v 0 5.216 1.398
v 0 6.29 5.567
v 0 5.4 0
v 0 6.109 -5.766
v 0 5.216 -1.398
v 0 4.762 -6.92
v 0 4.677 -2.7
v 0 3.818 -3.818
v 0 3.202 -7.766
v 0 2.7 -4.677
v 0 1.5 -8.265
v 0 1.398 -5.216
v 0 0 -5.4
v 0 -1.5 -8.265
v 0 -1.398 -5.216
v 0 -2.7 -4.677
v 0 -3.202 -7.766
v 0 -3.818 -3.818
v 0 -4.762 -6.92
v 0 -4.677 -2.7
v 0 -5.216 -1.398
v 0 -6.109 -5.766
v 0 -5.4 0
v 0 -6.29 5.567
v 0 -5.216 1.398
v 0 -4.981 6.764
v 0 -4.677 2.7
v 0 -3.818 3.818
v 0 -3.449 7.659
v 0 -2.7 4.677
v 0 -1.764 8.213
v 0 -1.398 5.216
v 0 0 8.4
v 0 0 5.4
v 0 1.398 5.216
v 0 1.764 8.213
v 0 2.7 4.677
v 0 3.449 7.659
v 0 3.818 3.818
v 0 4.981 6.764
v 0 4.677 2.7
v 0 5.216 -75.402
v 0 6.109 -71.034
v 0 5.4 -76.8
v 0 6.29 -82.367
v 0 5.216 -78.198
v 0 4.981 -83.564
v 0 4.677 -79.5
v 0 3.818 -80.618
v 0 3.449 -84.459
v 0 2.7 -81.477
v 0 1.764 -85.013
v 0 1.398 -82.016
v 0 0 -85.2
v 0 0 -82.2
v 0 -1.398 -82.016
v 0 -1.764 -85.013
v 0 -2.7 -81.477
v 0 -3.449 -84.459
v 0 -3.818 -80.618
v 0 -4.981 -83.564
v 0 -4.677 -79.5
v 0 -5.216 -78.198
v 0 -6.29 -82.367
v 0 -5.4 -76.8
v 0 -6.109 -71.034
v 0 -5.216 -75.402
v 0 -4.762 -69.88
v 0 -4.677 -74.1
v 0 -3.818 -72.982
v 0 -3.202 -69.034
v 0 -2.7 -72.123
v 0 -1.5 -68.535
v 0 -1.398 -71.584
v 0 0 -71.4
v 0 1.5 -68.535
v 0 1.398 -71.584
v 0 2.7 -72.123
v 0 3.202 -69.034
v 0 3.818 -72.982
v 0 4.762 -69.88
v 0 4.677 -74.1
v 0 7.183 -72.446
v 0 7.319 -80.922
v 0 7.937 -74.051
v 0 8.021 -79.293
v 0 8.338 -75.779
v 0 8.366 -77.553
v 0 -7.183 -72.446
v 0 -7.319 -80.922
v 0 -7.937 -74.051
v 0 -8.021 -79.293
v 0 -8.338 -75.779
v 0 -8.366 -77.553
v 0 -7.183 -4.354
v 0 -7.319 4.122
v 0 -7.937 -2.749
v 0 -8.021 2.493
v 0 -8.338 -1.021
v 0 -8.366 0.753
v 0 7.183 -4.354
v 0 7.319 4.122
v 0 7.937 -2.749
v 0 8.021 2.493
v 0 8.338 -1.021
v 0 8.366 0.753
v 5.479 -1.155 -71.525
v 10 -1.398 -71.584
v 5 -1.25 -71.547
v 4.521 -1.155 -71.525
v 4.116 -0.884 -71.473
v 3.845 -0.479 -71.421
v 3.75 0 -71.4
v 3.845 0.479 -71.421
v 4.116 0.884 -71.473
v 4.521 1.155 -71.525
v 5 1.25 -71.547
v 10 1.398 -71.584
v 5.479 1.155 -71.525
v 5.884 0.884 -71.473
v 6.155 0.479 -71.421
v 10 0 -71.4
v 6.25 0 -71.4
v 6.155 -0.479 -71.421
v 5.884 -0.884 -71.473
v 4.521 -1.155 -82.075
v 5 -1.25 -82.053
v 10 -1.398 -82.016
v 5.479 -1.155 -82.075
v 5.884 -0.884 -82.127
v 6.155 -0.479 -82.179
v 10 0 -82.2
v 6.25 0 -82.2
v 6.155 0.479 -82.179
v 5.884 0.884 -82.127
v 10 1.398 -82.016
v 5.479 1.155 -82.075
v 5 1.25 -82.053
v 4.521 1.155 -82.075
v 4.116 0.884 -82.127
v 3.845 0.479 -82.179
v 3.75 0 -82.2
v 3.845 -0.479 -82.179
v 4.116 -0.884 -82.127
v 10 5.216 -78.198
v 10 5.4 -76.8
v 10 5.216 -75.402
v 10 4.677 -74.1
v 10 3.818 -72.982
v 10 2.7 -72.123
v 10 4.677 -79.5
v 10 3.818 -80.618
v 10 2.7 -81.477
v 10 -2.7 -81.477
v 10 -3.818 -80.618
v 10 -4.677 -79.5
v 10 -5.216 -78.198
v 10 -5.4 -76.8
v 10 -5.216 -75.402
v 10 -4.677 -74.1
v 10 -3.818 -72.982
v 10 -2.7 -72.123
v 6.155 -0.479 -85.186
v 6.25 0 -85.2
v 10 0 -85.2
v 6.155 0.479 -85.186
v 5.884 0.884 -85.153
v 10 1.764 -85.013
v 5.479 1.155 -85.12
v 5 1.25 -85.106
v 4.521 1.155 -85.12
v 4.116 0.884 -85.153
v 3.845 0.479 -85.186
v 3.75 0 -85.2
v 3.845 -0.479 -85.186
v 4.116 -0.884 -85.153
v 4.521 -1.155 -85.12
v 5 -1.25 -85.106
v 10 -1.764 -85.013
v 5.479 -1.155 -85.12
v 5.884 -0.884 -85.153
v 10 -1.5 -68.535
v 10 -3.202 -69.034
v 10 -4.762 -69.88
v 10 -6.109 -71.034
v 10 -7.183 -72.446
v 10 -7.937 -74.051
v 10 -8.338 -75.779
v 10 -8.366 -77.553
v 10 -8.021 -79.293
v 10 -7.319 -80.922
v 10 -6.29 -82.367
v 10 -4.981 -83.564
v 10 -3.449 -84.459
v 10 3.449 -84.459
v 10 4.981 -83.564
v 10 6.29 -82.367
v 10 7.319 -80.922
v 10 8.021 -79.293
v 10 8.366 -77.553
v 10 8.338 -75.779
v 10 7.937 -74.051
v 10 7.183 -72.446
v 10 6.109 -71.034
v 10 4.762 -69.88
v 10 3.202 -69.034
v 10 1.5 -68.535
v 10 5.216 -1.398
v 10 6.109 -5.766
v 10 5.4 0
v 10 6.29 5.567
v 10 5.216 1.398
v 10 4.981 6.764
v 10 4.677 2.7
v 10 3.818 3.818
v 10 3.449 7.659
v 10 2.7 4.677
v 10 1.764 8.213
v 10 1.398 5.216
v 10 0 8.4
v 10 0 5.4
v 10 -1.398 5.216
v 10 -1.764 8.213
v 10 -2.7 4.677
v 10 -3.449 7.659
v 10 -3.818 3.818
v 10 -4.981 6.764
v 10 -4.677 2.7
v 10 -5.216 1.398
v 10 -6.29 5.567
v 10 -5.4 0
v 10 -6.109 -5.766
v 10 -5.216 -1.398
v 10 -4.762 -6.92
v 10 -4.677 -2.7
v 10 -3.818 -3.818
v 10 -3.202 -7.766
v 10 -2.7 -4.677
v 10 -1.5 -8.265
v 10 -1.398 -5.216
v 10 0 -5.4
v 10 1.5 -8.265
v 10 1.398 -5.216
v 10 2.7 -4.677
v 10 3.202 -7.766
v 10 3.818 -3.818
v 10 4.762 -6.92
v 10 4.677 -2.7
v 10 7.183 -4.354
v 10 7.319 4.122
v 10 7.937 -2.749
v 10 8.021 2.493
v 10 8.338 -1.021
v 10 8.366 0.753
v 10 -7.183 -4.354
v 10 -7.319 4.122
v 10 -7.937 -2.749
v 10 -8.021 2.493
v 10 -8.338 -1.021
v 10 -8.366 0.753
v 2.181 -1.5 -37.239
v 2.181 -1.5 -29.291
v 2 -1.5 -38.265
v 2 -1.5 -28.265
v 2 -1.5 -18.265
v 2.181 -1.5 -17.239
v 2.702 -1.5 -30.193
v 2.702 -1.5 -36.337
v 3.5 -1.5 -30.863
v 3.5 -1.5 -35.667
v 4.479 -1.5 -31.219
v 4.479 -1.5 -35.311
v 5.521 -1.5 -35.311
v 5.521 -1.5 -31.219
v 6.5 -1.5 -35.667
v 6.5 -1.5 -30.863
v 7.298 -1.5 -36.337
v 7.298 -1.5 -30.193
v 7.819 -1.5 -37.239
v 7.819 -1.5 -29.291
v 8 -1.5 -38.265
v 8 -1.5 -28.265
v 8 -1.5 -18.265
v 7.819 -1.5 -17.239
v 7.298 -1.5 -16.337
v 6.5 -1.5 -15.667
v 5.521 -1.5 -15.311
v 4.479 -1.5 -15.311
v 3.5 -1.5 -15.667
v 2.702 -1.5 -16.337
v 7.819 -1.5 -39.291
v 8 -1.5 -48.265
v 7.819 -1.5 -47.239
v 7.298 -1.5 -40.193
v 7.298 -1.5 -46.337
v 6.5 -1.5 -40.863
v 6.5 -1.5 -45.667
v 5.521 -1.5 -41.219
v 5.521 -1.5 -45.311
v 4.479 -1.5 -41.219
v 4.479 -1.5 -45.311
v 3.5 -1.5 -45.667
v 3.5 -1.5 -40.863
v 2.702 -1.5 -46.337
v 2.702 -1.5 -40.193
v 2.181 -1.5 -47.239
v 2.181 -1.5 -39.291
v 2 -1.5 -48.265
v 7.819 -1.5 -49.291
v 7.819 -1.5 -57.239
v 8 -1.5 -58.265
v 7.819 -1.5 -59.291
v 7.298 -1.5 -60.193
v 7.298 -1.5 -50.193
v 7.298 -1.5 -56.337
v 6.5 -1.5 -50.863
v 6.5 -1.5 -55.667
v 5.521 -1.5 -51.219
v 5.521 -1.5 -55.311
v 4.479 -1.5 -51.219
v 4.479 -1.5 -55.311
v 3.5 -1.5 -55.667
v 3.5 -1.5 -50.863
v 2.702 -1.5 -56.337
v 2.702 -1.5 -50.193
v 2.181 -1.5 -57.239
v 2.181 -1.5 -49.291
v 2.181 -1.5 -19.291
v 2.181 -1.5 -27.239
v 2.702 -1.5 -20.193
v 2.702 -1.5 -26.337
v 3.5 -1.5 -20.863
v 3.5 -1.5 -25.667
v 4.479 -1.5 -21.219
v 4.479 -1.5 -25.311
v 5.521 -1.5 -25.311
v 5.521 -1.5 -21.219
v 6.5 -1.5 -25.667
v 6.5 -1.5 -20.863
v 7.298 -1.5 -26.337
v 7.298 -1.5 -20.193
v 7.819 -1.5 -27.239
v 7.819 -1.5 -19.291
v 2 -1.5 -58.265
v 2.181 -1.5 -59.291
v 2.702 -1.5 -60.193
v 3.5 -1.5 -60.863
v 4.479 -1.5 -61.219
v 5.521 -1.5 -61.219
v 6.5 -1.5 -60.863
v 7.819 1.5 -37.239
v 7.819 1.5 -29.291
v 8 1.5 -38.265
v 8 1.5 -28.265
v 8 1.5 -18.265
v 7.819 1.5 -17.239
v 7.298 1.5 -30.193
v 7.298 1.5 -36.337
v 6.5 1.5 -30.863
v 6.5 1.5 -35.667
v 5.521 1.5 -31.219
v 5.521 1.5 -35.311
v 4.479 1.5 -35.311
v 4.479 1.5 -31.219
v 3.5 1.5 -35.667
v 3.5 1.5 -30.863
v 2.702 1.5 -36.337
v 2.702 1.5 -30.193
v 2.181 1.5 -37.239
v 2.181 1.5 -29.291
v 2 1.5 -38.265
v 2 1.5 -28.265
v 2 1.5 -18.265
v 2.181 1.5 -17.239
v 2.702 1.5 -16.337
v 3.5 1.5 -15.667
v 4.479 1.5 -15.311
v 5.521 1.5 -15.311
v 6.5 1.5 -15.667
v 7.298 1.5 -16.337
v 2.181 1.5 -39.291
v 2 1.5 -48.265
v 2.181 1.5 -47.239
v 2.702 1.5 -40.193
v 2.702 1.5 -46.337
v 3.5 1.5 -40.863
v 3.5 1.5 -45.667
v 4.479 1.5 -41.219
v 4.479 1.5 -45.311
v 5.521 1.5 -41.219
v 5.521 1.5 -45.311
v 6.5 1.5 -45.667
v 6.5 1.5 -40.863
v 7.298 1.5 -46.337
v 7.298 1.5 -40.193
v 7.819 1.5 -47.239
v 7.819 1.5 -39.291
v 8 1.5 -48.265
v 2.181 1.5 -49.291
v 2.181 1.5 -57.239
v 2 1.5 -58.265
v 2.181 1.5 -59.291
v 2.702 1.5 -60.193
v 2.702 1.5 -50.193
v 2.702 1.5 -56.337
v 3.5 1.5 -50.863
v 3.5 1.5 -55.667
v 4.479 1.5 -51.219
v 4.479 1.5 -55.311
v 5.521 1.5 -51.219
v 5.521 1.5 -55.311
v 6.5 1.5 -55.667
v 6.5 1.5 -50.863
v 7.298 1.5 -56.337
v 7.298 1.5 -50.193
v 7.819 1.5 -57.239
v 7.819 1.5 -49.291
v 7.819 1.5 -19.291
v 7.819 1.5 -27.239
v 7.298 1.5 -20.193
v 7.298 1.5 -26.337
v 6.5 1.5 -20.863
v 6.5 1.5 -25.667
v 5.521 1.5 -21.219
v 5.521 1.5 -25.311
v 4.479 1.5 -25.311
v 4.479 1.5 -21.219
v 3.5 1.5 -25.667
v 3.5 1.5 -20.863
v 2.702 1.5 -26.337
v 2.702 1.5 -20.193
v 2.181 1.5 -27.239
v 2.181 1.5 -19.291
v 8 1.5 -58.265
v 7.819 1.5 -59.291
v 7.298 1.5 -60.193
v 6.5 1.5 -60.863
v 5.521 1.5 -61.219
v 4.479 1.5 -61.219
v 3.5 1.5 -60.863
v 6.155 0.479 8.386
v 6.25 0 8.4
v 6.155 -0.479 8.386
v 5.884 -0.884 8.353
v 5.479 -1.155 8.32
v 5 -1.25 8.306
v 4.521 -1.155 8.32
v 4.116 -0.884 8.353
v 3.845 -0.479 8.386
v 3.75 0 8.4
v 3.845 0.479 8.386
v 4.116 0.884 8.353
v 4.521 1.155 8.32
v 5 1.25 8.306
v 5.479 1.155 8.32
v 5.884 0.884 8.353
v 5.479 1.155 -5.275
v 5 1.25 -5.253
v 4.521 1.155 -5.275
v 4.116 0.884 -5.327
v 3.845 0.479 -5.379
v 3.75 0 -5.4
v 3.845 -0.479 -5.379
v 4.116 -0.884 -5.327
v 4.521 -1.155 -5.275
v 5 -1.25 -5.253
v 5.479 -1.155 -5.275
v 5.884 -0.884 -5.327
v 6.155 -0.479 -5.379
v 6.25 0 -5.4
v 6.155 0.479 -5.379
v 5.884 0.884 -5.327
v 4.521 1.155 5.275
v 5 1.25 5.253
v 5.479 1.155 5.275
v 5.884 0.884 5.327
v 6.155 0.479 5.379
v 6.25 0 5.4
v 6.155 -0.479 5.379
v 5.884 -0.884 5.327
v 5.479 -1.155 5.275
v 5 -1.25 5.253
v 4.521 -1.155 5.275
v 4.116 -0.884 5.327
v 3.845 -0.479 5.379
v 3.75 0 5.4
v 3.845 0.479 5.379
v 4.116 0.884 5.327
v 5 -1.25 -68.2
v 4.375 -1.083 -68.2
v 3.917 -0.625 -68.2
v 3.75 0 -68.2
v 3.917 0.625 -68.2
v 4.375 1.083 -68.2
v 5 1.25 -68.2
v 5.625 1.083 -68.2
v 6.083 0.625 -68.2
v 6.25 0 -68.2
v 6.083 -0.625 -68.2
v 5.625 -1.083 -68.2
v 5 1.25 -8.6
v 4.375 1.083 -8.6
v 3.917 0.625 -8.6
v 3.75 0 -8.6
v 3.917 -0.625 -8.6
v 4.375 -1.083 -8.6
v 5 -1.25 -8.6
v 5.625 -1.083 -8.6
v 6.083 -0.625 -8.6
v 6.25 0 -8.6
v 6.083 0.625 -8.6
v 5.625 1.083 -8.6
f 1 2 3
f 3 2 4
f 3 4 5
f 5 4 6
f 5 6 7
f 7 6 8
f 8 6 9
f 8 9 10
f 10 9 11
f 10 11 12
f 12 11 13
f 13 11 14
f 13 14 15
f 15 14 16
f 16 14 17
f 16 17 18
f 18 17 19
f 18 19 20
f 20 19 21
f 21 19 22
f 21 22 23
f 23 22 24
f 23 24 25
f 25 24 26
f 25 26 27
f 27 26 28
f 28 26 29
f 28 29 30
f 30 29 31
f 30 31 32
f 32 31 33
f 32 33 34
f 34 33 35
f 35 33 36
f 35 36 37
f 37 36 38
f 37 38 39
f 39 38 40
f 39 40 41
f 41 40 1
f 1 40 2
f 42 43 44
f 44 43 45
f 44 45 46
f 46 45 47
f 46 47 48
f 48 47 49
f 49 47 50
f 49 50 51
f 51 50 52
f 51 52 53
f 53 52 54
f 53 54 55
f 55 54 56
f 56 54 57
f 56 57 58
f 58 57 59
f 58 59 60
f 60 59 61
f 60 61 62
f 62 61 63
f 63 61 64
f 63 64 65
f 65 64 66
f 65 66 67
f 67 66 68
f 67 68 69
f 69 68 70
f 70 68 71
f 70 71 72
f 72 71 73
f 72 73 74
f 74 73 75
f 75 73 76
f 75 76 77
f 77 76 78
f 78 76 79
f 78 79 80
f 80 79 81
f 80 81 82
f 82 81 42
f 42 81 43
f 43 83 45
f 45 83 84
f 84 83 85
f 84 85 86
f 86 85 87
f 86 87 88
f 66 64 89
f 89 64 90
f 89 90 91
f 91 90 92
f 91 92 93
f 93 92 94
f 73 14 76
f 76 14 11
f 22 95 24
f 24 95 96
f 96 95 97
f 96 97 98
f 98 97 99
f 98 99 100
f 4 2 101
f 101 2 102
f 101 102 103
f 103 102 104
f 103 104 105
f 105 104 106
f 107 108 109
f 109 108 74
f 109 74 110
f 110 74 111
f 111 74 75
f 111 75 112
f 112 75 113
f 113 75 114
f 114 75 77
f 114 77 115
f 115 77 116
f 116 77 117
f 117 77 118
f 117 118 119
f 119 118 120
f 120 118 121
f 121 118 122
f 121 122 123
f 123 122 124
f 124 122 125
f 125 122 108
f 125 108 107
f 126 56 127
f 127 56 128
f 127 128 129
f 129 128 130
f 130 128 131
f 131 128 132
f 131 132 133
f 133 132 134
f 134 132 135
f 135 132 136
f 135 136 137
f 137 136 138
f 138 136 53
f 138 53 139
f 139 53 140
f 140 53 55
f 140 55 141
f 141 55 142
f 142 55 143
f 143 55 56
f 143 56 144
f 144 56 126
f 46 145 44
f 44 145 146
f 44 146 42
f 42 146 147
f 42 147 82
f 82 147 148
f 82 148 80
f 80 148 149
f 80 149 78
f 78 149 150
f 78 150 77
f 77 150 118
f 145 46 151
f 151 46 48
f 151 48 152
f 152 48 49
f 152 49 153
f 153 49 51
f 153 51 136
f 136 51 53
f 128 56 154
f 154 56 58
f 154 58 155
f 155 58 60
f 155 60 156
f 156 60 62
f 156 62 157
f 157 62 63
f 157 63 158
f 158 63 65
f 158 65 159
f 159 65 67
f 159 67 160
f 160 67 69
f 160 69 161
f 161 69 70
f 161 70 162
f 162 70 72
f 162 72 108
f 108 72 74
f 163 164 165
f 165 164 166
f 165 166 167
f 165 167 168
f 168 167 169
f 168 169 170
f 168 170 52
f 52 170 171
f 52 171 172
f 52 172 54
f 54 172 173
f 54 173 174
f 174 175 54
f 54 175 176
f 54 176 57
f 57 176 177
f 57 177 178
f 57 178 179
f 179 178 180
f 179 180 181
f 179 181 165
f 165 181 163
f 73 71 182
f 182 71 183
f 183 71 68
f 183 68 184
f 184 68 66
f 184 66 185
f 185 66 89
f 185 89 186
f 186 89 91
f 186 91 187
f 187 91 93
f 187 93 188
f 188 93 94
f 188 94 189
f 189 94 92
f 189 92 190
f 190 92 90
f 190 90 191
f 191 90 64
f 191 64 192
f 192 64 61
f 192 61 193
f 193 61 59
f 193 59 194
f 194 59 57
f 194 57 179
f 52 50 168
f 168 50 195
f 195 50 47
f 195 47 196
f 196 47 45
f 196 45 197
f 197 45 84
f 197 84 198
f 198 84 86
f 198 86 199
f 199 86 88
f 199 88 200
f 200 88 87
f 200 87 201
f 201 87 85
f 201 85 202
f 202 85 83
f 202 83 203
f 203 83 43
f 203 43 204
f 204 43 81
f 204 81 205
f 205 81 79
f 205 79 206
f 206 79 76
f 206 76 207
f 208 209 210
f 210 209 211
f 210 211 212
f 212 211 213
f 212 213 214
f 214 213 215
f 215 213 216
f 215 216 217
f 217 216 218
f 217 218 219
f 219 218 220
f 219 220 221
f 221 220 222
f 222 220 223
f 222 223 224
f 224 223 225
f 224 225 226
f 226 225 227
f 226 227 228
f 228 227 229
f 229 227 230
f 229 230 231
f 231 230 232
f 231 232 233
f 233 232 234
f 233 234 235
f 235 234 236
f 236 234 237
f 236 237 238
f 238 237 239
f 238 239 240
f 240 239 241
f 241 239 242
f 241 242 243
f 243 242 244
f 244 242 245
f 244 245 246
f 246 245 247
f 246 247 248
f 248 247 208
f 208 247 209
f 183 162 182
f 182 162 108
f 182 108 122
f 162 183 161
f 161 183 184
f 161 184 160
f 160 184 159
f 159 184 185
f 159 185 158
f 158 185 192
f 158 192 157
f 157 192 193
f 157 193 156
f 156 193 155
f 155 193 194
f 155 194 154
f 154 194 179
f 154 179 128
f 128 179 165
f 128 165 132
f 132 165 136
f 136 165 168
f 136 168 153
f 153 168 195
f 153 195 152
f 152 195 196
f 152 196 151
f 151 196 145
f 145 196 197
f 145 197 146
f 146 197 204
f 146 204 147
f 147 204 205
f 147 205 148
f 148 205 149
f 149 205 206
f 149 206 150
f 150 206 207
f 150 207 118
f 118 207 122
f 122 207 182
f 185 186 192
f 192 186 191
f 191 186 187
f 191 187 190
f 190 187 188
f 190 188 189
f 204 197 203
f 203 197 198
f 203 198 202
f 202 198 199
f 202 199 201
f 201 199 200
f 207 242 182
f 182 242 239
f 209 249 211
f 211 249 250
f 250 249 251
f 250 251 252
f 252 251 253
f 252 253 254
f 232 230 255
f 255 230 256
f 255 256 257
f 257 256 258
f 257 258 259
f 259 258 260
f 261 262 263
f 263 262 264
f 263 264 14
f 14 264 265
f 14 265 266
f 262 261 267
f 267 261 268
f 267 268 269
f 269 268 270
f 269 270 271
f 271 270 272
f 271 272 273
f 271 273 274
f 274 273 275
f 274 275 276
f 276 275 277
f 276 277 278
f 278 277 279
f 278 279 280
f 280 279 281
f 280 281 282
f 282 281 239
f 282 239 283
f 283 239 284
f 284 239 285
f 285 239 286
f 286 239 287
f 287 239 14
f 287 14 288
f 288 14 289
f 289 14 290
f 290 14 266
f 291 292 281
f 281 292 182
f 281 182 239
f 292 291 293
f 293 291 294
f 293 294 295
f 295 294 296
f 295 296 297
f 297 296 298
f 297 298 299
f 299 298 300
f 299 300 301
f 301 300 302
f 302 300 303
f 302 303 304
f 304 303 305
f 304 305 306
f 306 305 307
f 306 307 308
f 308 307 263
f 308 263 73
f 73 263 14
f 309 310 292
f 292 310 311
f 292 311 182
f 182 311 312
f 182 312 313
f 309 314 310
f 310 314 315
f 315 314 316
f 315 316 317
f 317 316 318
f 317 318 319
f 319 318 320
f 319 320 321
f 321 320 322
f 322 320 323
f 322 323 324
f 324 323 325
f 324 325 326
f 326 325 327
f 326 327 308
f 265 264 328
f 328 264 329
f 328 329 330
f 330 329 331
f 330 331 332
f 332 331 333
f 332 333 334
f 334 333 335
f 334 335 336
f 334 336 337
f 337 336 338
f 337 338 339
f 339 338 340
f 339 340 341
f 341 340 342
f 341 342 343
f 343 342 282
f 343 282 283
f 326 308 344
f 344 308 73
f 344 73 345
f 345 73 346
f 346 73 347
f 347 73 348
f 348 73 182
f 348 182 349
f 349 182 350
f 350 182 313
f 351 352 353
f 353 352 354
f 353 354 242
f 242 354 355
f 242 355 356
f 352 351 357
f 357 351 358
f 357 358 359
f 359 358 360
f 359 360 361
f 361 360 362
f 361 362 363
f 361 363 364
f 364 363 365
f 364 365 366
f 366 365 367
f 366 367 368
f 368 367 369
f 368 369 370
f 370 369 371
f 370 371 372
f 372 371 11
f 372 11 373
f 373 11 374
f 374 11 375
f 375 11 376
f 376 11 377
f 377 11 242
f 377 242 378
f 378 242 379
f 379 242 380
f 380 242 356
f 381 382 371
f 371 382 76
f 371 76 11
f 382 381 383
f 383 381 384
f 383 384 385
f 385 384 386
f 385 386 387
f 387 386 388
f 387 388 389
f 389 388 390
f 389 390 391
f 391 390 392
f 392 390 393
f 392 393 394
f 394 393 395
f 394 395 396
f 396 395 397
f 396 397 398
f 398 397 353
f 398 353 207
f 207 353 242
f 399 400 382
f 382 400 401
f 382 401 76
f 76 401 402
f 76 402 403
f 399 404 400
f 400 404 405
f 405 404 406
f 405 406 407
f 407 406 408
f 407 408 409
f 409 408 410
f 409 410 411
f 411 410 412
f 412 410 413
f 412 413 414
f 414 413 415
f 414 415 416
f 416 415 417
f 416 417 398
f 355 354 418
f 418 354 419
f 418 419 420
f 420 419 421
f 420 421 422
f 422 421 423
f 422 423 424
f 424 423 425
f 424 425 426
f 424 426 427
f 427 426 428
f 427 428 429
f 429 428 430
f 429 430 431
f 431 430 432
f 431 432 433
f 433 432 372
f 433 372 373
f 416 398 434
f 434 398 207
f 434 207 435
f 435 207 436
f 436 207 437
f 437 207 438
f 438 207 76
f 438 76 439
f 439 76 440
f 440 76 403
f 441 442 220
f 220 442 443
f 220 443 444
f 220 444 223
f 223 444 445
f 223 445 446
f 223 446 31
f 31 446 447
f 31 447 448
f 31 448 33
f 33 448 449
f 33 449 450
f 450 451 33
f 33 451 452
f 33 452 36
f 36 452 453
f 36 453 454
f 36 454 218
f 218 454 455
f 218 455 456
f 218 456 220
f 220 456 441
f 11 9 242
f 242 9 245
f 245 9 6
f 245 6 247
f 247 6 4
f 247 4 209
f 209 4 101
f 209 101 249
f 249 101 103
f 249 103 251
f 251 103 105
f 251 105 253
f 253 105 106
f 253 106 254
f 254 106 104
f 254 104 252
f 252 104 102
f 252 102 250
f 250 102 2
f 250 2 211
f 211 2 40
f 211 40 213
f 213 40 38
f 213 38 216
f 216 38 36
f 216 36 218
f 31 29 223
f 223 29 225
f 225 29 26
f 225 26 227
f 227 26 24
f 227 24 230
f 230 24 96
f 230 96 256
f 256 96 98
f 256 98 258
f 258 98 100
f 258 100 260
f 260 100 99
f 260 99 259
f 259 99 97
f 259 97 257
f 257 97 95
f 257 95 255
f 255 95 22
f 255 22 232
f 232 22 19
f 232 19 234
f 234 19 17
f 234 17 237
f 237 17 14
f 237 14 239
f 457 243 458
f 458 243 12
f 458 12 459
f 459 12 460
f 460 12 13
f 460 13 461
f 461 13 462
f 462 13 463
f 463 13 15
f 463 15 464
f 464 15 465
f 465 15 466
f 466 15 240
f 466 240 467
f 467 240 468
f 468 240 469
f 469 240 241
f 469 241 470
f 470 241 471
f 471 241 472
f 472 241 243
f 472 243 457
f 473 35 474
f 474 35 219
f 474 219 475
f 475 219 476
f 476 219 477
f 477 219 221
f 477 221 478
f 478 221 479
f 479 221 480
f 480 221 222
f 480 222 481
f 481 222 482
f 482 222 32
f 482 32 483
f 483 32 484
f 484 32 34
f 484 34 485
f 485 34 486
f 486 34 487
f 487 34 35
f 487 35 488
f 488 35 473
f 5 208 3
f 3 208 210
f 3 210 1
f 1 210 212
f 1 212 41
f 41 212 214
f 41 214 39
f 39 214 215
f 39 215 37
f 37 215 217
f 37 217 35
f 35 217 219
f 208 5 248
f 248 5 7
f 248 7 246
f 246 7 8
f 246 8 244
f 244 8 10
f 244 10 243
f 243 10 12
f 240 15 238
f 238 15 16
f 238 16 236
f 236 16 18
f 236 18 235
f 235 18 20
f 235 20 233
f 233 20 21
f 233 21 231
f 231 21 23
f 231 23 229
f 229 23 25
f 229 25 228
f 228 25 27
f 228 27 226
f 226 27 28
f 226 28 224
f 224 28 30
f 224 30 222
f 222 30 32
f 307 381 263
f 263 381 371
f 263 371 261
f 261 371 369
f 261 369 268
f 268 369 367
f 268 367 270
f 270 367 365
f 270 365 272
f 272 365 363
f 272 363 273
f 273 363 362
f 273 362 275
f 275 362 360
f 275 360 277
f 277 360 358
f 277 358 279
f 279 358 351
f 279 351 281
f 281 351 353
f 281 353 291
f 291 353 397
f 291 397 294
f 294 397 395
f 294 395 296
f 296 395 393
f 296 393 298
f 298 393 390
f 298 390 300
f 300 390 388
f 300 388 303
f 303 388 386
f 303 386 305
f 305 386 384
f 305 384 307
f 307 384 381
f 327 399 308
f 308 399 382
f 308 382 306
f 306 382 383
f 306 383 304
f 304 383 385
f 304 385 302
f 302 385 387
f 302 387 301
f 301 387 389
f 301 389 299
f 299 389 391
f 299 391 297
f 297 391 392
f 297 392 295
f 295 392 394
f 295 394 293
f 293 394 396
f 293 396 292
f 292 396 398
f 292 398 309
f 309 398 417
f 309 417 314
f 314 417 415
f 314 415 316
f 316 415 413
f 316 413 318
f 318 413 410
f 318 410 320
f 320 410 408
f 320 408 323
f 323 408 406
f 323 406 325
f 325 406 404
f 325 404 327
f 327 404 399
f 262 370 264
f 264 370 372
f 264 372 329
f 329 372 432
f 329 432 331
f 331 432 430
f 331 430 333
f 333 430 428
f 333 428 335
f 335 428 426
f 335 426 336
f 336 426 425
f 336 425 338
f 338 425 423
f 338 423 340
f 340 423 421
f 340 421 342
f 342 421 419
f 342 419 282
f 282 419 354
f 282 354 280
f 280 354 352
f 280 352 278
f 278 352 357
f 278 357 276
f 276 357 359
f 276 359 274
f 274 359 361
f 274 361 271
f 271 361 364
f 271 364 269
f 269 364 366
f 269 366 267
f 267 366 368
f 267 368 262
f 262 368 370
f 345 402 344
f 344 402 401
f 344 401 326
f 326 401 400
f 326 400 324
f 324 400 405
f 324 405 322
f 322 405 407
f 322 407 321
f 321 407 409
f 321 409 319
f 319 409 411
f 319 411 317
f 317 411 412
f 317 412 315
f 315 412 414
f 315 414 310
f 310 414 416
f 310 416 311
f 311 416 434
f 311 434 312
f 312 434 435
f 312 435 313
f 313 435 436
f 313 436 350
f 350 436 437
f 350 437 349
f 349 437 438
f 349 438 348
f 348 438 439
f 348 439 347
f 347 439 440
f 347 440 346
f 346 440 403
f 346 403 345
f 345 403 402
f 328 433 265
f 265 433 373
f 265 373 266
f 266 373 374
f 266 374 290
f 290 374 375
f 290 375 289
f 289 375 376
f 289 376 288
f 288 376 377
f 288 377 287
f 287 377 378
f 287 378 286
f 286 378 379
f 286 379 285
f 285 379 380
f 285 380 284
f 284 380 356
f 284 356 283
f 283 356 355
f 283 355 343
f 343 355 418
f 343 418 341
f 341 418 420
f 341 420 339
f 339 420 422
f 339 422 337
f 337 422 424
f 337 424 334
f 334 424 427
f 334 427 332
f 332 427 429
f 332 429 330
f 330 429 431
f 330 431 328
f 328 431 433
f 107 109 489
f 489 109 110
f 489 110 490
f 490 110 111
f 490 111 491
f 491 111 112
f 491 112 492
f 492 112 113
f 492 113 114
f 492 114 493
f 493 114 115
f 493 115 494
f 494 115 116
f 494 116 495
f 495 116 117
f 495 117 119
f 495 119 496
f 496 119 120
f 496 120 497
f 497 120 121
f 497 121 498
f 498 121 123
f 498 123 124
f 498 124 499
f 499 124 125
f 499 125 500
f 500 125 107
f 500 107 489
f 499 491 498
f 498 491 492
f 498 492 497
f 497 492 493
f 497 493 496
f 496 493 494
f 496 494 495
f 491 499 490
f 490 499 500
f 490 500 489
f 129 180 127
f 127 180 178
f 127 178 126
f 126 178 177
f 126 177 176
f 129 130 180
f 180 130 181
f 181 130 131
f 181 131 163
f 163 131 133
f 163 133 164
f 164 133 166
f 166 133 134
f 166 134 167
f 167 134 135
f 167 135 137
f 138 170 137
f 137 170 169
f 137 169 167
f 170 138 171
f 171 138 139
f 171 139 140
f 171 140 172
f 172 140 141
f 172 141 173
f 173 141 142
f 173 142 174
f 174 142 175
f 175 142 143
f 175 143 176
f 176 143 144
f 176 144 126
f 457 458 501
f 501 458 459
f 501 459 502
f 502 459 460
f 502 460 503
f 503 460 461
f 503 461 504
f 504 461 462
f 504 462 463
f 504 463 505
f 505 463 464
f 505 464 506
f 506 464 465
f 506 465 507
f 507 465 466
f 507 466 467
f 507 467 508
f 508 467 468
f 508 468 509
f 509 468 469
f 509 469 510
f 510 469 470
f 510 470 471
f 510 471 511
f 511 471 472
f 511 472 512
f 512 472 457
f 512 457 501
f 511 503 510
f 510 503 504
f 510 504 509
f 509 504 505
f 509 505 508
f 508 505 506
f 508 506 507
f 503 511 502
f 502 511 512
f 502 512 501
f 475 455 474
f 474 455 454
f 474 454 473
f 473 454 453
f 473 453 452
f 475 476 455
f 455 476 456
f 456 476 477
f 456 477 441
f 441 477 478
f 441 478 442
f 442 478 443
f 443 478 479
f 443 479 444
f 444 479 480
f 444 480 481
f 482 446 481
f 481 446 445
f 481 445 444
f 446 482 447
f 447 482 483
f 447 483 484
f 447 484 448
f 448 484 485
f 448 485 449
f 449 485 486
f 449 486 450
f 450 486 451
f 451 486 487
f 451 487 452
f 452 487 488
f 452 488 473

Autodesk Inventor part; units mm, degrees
ref_plane "YZ Plane" through (0, 0, 0) normal (1, 0, 0) x (0, 1, 0)
sketch "스케치1" plane through (0, 0, 0) normal (1, 0, 0) x (0, 1, 0)
  circle A0 centre (0, 0) radius 5.4
  circle A1 centre (0, 0) radius 8.4
  line L0 (34.8065, -38.4) -> (-35.3174, -38.4) construction
  circle A2 centre (0, -76.8) radius 5.4
  circle A3 centre (0, -76.8) radius 8.4
  dimension "d0" = 10.8
  dimension "d1" = 16.8
  dimension "d4" = 38.4
extrude "돌출1" add sketch "스케치1" along normal blind 10
ref_plane "작업 평면1" through (0, 0, -8.4) normal (0, 0, 1) x (1, 0, 0)
sketch "스케치2" plane through (0, 0, -8.4) normal (0, 0, 1) x (1, 0, 0)
  line L0 (10, -8.4) -> (10, 8.4) projected
  line L1 (0, -8.4) -> (0, 8.4) projected
  line L2 (0, 8.4) -> (10, 8.4) projected
  line L3 (0, -8.4) -> (10, -8.4) projected
  line L4 (0, -8.4) -> (0, 8.4) projected
  line L5 (10, -1.5) -> (0, -1.5)
  line L6 (0, -1.5) -> (0, 1.5)
  line L7 (0, 1.5) -> (10, 1.5)
  line L8 (10, 1.5) -> (10, -1.5)
  line L9 (10, -1.5) -> (0, 1.5) construction
  line L10 (0, -1.5) -> (10, 1.5) construction
  point P0 (0, 0)
  point P1 (5, 0)
  point P2 (0, -1.5)
  dimension "d6" = 8.4
  dimension "d7" = 3
  dimension "d12" = 10
extrude "돌출2" add sketch "스케치2" along normal blind 3 contours L5 L1 L7 L0
extrude "돌출3" add sketch "스케치2" against normal blind 63 contours L5 L1 L7 L0
sketch "스케치4" plane through (0, 1.5, -8.265) normal (0, 1, 0) x (1, 0, 0)
  line L0 (0, 0) -> (0, 60.27) projected
  line L1 (10, 0) -> (0, 0) projected
  line L2 (0, 60.27) -> (10, 60.27) projected
  line L3 (10, 0) -> (10, 60.27) projected
  line L4 (0, 60.27) -> (0, 0) projected
  line L5 (5, -0.4) -> (5, 39.3864) construction
  circle A0 centre (5, 30) radius 3
  circle A1 centre (5, 40) radius 3
  circle A2 centre (5, 50) radius 3
  circle A3 centre (5, 20) radius 3
  circle A4 centre (5, 10) radius 3
  point P0 (0, -8.265)
  dimension "d22" = 6
  dimension "d23" = 30
  dimension "d26" = 10
  dimension "d33" = 10
ref_plane "작업 평면3" through (0, 0, -8.4) normal (0, 0, 1) x (1, 0, 0)
ref_plane "작업 평면4" through (0, 0, -68.4) normal (0, 0, 1) x (1, 0, 0)
extrude "돌출4" cut sketch "스케치4" against normal blind 10 contours A0 | A1 | A2 | A3 | A4
ref_plane "작업 평면6" through (0, 0, -85.2) normal (0, 0, 1) x (1, 0, 0)
ref_plane "작업 평면5" through (0, 0, 8.4) normal (0, 0, 1) x (1, 0, 0)
sketch "스케치5" plane through (0, 0, 8.4) normal (0, 0, 1) x (1, 0, 0)
  line L0 (10, 1.5) -> (0, 1.5) projected
  line L1 (0, 1.5) -> (0, -1.5) projected
  line L2 (0, -1.5) -> (10, -1.5) projected
  line L3 (10, 1.5) -> (10, -1.5) projected
  line L4 (0, 8.4) -> (10, 8.4) projected
  line L5 (0, -8.4) -> (0, 8.4) projected
  line L6 (10, -8.4) -> (10, 8.4) projected
  line L7 (0, -8.4) -> (10, -8.4) projected
  circle A0 centre (5, 0) radius 1.25
  point P0 (0, 0)
  dimension "d40" = 2.5
  dimension "d41" = 5
  dimension "d42" = 8.4
sketch "스케치6" plane through (0, 0, -85.2) normal (0, 0, 1) x (1, 0, 0)
  circle A0 centre (5, 0) radius 1.25
  line L0 (0, 8.4) -> (10, 8.4) projected
  line L1 (10, -8.4) -> (10, 8.4) projected
  line L2 (10, -1.5) -> (0, -1.5) projected
  line L3 (0, -1.5) -> (0, 1.5) projected
  line L4 (0, 1.5) -> (10, 1.5) projected
  line L5 (10, -1.5) -> (10, 1.5) projected
  line L6 (2, 1.5) -> (2, -1.5) projected
  line L7 (0, -8.4) -> (0, 8.4) projected
  point P0 (0, 0)
  dimension "d46" = 2.5
  dimension "d47" = 8.4
  dimension "d48" = 5
extrude "돌출5" cut sketch "스케치6" along normal blind 17 contours A0
extrude "돌출6" cut sketch "스케치5" against normal blind 17 contours A0
properties part number "link"
